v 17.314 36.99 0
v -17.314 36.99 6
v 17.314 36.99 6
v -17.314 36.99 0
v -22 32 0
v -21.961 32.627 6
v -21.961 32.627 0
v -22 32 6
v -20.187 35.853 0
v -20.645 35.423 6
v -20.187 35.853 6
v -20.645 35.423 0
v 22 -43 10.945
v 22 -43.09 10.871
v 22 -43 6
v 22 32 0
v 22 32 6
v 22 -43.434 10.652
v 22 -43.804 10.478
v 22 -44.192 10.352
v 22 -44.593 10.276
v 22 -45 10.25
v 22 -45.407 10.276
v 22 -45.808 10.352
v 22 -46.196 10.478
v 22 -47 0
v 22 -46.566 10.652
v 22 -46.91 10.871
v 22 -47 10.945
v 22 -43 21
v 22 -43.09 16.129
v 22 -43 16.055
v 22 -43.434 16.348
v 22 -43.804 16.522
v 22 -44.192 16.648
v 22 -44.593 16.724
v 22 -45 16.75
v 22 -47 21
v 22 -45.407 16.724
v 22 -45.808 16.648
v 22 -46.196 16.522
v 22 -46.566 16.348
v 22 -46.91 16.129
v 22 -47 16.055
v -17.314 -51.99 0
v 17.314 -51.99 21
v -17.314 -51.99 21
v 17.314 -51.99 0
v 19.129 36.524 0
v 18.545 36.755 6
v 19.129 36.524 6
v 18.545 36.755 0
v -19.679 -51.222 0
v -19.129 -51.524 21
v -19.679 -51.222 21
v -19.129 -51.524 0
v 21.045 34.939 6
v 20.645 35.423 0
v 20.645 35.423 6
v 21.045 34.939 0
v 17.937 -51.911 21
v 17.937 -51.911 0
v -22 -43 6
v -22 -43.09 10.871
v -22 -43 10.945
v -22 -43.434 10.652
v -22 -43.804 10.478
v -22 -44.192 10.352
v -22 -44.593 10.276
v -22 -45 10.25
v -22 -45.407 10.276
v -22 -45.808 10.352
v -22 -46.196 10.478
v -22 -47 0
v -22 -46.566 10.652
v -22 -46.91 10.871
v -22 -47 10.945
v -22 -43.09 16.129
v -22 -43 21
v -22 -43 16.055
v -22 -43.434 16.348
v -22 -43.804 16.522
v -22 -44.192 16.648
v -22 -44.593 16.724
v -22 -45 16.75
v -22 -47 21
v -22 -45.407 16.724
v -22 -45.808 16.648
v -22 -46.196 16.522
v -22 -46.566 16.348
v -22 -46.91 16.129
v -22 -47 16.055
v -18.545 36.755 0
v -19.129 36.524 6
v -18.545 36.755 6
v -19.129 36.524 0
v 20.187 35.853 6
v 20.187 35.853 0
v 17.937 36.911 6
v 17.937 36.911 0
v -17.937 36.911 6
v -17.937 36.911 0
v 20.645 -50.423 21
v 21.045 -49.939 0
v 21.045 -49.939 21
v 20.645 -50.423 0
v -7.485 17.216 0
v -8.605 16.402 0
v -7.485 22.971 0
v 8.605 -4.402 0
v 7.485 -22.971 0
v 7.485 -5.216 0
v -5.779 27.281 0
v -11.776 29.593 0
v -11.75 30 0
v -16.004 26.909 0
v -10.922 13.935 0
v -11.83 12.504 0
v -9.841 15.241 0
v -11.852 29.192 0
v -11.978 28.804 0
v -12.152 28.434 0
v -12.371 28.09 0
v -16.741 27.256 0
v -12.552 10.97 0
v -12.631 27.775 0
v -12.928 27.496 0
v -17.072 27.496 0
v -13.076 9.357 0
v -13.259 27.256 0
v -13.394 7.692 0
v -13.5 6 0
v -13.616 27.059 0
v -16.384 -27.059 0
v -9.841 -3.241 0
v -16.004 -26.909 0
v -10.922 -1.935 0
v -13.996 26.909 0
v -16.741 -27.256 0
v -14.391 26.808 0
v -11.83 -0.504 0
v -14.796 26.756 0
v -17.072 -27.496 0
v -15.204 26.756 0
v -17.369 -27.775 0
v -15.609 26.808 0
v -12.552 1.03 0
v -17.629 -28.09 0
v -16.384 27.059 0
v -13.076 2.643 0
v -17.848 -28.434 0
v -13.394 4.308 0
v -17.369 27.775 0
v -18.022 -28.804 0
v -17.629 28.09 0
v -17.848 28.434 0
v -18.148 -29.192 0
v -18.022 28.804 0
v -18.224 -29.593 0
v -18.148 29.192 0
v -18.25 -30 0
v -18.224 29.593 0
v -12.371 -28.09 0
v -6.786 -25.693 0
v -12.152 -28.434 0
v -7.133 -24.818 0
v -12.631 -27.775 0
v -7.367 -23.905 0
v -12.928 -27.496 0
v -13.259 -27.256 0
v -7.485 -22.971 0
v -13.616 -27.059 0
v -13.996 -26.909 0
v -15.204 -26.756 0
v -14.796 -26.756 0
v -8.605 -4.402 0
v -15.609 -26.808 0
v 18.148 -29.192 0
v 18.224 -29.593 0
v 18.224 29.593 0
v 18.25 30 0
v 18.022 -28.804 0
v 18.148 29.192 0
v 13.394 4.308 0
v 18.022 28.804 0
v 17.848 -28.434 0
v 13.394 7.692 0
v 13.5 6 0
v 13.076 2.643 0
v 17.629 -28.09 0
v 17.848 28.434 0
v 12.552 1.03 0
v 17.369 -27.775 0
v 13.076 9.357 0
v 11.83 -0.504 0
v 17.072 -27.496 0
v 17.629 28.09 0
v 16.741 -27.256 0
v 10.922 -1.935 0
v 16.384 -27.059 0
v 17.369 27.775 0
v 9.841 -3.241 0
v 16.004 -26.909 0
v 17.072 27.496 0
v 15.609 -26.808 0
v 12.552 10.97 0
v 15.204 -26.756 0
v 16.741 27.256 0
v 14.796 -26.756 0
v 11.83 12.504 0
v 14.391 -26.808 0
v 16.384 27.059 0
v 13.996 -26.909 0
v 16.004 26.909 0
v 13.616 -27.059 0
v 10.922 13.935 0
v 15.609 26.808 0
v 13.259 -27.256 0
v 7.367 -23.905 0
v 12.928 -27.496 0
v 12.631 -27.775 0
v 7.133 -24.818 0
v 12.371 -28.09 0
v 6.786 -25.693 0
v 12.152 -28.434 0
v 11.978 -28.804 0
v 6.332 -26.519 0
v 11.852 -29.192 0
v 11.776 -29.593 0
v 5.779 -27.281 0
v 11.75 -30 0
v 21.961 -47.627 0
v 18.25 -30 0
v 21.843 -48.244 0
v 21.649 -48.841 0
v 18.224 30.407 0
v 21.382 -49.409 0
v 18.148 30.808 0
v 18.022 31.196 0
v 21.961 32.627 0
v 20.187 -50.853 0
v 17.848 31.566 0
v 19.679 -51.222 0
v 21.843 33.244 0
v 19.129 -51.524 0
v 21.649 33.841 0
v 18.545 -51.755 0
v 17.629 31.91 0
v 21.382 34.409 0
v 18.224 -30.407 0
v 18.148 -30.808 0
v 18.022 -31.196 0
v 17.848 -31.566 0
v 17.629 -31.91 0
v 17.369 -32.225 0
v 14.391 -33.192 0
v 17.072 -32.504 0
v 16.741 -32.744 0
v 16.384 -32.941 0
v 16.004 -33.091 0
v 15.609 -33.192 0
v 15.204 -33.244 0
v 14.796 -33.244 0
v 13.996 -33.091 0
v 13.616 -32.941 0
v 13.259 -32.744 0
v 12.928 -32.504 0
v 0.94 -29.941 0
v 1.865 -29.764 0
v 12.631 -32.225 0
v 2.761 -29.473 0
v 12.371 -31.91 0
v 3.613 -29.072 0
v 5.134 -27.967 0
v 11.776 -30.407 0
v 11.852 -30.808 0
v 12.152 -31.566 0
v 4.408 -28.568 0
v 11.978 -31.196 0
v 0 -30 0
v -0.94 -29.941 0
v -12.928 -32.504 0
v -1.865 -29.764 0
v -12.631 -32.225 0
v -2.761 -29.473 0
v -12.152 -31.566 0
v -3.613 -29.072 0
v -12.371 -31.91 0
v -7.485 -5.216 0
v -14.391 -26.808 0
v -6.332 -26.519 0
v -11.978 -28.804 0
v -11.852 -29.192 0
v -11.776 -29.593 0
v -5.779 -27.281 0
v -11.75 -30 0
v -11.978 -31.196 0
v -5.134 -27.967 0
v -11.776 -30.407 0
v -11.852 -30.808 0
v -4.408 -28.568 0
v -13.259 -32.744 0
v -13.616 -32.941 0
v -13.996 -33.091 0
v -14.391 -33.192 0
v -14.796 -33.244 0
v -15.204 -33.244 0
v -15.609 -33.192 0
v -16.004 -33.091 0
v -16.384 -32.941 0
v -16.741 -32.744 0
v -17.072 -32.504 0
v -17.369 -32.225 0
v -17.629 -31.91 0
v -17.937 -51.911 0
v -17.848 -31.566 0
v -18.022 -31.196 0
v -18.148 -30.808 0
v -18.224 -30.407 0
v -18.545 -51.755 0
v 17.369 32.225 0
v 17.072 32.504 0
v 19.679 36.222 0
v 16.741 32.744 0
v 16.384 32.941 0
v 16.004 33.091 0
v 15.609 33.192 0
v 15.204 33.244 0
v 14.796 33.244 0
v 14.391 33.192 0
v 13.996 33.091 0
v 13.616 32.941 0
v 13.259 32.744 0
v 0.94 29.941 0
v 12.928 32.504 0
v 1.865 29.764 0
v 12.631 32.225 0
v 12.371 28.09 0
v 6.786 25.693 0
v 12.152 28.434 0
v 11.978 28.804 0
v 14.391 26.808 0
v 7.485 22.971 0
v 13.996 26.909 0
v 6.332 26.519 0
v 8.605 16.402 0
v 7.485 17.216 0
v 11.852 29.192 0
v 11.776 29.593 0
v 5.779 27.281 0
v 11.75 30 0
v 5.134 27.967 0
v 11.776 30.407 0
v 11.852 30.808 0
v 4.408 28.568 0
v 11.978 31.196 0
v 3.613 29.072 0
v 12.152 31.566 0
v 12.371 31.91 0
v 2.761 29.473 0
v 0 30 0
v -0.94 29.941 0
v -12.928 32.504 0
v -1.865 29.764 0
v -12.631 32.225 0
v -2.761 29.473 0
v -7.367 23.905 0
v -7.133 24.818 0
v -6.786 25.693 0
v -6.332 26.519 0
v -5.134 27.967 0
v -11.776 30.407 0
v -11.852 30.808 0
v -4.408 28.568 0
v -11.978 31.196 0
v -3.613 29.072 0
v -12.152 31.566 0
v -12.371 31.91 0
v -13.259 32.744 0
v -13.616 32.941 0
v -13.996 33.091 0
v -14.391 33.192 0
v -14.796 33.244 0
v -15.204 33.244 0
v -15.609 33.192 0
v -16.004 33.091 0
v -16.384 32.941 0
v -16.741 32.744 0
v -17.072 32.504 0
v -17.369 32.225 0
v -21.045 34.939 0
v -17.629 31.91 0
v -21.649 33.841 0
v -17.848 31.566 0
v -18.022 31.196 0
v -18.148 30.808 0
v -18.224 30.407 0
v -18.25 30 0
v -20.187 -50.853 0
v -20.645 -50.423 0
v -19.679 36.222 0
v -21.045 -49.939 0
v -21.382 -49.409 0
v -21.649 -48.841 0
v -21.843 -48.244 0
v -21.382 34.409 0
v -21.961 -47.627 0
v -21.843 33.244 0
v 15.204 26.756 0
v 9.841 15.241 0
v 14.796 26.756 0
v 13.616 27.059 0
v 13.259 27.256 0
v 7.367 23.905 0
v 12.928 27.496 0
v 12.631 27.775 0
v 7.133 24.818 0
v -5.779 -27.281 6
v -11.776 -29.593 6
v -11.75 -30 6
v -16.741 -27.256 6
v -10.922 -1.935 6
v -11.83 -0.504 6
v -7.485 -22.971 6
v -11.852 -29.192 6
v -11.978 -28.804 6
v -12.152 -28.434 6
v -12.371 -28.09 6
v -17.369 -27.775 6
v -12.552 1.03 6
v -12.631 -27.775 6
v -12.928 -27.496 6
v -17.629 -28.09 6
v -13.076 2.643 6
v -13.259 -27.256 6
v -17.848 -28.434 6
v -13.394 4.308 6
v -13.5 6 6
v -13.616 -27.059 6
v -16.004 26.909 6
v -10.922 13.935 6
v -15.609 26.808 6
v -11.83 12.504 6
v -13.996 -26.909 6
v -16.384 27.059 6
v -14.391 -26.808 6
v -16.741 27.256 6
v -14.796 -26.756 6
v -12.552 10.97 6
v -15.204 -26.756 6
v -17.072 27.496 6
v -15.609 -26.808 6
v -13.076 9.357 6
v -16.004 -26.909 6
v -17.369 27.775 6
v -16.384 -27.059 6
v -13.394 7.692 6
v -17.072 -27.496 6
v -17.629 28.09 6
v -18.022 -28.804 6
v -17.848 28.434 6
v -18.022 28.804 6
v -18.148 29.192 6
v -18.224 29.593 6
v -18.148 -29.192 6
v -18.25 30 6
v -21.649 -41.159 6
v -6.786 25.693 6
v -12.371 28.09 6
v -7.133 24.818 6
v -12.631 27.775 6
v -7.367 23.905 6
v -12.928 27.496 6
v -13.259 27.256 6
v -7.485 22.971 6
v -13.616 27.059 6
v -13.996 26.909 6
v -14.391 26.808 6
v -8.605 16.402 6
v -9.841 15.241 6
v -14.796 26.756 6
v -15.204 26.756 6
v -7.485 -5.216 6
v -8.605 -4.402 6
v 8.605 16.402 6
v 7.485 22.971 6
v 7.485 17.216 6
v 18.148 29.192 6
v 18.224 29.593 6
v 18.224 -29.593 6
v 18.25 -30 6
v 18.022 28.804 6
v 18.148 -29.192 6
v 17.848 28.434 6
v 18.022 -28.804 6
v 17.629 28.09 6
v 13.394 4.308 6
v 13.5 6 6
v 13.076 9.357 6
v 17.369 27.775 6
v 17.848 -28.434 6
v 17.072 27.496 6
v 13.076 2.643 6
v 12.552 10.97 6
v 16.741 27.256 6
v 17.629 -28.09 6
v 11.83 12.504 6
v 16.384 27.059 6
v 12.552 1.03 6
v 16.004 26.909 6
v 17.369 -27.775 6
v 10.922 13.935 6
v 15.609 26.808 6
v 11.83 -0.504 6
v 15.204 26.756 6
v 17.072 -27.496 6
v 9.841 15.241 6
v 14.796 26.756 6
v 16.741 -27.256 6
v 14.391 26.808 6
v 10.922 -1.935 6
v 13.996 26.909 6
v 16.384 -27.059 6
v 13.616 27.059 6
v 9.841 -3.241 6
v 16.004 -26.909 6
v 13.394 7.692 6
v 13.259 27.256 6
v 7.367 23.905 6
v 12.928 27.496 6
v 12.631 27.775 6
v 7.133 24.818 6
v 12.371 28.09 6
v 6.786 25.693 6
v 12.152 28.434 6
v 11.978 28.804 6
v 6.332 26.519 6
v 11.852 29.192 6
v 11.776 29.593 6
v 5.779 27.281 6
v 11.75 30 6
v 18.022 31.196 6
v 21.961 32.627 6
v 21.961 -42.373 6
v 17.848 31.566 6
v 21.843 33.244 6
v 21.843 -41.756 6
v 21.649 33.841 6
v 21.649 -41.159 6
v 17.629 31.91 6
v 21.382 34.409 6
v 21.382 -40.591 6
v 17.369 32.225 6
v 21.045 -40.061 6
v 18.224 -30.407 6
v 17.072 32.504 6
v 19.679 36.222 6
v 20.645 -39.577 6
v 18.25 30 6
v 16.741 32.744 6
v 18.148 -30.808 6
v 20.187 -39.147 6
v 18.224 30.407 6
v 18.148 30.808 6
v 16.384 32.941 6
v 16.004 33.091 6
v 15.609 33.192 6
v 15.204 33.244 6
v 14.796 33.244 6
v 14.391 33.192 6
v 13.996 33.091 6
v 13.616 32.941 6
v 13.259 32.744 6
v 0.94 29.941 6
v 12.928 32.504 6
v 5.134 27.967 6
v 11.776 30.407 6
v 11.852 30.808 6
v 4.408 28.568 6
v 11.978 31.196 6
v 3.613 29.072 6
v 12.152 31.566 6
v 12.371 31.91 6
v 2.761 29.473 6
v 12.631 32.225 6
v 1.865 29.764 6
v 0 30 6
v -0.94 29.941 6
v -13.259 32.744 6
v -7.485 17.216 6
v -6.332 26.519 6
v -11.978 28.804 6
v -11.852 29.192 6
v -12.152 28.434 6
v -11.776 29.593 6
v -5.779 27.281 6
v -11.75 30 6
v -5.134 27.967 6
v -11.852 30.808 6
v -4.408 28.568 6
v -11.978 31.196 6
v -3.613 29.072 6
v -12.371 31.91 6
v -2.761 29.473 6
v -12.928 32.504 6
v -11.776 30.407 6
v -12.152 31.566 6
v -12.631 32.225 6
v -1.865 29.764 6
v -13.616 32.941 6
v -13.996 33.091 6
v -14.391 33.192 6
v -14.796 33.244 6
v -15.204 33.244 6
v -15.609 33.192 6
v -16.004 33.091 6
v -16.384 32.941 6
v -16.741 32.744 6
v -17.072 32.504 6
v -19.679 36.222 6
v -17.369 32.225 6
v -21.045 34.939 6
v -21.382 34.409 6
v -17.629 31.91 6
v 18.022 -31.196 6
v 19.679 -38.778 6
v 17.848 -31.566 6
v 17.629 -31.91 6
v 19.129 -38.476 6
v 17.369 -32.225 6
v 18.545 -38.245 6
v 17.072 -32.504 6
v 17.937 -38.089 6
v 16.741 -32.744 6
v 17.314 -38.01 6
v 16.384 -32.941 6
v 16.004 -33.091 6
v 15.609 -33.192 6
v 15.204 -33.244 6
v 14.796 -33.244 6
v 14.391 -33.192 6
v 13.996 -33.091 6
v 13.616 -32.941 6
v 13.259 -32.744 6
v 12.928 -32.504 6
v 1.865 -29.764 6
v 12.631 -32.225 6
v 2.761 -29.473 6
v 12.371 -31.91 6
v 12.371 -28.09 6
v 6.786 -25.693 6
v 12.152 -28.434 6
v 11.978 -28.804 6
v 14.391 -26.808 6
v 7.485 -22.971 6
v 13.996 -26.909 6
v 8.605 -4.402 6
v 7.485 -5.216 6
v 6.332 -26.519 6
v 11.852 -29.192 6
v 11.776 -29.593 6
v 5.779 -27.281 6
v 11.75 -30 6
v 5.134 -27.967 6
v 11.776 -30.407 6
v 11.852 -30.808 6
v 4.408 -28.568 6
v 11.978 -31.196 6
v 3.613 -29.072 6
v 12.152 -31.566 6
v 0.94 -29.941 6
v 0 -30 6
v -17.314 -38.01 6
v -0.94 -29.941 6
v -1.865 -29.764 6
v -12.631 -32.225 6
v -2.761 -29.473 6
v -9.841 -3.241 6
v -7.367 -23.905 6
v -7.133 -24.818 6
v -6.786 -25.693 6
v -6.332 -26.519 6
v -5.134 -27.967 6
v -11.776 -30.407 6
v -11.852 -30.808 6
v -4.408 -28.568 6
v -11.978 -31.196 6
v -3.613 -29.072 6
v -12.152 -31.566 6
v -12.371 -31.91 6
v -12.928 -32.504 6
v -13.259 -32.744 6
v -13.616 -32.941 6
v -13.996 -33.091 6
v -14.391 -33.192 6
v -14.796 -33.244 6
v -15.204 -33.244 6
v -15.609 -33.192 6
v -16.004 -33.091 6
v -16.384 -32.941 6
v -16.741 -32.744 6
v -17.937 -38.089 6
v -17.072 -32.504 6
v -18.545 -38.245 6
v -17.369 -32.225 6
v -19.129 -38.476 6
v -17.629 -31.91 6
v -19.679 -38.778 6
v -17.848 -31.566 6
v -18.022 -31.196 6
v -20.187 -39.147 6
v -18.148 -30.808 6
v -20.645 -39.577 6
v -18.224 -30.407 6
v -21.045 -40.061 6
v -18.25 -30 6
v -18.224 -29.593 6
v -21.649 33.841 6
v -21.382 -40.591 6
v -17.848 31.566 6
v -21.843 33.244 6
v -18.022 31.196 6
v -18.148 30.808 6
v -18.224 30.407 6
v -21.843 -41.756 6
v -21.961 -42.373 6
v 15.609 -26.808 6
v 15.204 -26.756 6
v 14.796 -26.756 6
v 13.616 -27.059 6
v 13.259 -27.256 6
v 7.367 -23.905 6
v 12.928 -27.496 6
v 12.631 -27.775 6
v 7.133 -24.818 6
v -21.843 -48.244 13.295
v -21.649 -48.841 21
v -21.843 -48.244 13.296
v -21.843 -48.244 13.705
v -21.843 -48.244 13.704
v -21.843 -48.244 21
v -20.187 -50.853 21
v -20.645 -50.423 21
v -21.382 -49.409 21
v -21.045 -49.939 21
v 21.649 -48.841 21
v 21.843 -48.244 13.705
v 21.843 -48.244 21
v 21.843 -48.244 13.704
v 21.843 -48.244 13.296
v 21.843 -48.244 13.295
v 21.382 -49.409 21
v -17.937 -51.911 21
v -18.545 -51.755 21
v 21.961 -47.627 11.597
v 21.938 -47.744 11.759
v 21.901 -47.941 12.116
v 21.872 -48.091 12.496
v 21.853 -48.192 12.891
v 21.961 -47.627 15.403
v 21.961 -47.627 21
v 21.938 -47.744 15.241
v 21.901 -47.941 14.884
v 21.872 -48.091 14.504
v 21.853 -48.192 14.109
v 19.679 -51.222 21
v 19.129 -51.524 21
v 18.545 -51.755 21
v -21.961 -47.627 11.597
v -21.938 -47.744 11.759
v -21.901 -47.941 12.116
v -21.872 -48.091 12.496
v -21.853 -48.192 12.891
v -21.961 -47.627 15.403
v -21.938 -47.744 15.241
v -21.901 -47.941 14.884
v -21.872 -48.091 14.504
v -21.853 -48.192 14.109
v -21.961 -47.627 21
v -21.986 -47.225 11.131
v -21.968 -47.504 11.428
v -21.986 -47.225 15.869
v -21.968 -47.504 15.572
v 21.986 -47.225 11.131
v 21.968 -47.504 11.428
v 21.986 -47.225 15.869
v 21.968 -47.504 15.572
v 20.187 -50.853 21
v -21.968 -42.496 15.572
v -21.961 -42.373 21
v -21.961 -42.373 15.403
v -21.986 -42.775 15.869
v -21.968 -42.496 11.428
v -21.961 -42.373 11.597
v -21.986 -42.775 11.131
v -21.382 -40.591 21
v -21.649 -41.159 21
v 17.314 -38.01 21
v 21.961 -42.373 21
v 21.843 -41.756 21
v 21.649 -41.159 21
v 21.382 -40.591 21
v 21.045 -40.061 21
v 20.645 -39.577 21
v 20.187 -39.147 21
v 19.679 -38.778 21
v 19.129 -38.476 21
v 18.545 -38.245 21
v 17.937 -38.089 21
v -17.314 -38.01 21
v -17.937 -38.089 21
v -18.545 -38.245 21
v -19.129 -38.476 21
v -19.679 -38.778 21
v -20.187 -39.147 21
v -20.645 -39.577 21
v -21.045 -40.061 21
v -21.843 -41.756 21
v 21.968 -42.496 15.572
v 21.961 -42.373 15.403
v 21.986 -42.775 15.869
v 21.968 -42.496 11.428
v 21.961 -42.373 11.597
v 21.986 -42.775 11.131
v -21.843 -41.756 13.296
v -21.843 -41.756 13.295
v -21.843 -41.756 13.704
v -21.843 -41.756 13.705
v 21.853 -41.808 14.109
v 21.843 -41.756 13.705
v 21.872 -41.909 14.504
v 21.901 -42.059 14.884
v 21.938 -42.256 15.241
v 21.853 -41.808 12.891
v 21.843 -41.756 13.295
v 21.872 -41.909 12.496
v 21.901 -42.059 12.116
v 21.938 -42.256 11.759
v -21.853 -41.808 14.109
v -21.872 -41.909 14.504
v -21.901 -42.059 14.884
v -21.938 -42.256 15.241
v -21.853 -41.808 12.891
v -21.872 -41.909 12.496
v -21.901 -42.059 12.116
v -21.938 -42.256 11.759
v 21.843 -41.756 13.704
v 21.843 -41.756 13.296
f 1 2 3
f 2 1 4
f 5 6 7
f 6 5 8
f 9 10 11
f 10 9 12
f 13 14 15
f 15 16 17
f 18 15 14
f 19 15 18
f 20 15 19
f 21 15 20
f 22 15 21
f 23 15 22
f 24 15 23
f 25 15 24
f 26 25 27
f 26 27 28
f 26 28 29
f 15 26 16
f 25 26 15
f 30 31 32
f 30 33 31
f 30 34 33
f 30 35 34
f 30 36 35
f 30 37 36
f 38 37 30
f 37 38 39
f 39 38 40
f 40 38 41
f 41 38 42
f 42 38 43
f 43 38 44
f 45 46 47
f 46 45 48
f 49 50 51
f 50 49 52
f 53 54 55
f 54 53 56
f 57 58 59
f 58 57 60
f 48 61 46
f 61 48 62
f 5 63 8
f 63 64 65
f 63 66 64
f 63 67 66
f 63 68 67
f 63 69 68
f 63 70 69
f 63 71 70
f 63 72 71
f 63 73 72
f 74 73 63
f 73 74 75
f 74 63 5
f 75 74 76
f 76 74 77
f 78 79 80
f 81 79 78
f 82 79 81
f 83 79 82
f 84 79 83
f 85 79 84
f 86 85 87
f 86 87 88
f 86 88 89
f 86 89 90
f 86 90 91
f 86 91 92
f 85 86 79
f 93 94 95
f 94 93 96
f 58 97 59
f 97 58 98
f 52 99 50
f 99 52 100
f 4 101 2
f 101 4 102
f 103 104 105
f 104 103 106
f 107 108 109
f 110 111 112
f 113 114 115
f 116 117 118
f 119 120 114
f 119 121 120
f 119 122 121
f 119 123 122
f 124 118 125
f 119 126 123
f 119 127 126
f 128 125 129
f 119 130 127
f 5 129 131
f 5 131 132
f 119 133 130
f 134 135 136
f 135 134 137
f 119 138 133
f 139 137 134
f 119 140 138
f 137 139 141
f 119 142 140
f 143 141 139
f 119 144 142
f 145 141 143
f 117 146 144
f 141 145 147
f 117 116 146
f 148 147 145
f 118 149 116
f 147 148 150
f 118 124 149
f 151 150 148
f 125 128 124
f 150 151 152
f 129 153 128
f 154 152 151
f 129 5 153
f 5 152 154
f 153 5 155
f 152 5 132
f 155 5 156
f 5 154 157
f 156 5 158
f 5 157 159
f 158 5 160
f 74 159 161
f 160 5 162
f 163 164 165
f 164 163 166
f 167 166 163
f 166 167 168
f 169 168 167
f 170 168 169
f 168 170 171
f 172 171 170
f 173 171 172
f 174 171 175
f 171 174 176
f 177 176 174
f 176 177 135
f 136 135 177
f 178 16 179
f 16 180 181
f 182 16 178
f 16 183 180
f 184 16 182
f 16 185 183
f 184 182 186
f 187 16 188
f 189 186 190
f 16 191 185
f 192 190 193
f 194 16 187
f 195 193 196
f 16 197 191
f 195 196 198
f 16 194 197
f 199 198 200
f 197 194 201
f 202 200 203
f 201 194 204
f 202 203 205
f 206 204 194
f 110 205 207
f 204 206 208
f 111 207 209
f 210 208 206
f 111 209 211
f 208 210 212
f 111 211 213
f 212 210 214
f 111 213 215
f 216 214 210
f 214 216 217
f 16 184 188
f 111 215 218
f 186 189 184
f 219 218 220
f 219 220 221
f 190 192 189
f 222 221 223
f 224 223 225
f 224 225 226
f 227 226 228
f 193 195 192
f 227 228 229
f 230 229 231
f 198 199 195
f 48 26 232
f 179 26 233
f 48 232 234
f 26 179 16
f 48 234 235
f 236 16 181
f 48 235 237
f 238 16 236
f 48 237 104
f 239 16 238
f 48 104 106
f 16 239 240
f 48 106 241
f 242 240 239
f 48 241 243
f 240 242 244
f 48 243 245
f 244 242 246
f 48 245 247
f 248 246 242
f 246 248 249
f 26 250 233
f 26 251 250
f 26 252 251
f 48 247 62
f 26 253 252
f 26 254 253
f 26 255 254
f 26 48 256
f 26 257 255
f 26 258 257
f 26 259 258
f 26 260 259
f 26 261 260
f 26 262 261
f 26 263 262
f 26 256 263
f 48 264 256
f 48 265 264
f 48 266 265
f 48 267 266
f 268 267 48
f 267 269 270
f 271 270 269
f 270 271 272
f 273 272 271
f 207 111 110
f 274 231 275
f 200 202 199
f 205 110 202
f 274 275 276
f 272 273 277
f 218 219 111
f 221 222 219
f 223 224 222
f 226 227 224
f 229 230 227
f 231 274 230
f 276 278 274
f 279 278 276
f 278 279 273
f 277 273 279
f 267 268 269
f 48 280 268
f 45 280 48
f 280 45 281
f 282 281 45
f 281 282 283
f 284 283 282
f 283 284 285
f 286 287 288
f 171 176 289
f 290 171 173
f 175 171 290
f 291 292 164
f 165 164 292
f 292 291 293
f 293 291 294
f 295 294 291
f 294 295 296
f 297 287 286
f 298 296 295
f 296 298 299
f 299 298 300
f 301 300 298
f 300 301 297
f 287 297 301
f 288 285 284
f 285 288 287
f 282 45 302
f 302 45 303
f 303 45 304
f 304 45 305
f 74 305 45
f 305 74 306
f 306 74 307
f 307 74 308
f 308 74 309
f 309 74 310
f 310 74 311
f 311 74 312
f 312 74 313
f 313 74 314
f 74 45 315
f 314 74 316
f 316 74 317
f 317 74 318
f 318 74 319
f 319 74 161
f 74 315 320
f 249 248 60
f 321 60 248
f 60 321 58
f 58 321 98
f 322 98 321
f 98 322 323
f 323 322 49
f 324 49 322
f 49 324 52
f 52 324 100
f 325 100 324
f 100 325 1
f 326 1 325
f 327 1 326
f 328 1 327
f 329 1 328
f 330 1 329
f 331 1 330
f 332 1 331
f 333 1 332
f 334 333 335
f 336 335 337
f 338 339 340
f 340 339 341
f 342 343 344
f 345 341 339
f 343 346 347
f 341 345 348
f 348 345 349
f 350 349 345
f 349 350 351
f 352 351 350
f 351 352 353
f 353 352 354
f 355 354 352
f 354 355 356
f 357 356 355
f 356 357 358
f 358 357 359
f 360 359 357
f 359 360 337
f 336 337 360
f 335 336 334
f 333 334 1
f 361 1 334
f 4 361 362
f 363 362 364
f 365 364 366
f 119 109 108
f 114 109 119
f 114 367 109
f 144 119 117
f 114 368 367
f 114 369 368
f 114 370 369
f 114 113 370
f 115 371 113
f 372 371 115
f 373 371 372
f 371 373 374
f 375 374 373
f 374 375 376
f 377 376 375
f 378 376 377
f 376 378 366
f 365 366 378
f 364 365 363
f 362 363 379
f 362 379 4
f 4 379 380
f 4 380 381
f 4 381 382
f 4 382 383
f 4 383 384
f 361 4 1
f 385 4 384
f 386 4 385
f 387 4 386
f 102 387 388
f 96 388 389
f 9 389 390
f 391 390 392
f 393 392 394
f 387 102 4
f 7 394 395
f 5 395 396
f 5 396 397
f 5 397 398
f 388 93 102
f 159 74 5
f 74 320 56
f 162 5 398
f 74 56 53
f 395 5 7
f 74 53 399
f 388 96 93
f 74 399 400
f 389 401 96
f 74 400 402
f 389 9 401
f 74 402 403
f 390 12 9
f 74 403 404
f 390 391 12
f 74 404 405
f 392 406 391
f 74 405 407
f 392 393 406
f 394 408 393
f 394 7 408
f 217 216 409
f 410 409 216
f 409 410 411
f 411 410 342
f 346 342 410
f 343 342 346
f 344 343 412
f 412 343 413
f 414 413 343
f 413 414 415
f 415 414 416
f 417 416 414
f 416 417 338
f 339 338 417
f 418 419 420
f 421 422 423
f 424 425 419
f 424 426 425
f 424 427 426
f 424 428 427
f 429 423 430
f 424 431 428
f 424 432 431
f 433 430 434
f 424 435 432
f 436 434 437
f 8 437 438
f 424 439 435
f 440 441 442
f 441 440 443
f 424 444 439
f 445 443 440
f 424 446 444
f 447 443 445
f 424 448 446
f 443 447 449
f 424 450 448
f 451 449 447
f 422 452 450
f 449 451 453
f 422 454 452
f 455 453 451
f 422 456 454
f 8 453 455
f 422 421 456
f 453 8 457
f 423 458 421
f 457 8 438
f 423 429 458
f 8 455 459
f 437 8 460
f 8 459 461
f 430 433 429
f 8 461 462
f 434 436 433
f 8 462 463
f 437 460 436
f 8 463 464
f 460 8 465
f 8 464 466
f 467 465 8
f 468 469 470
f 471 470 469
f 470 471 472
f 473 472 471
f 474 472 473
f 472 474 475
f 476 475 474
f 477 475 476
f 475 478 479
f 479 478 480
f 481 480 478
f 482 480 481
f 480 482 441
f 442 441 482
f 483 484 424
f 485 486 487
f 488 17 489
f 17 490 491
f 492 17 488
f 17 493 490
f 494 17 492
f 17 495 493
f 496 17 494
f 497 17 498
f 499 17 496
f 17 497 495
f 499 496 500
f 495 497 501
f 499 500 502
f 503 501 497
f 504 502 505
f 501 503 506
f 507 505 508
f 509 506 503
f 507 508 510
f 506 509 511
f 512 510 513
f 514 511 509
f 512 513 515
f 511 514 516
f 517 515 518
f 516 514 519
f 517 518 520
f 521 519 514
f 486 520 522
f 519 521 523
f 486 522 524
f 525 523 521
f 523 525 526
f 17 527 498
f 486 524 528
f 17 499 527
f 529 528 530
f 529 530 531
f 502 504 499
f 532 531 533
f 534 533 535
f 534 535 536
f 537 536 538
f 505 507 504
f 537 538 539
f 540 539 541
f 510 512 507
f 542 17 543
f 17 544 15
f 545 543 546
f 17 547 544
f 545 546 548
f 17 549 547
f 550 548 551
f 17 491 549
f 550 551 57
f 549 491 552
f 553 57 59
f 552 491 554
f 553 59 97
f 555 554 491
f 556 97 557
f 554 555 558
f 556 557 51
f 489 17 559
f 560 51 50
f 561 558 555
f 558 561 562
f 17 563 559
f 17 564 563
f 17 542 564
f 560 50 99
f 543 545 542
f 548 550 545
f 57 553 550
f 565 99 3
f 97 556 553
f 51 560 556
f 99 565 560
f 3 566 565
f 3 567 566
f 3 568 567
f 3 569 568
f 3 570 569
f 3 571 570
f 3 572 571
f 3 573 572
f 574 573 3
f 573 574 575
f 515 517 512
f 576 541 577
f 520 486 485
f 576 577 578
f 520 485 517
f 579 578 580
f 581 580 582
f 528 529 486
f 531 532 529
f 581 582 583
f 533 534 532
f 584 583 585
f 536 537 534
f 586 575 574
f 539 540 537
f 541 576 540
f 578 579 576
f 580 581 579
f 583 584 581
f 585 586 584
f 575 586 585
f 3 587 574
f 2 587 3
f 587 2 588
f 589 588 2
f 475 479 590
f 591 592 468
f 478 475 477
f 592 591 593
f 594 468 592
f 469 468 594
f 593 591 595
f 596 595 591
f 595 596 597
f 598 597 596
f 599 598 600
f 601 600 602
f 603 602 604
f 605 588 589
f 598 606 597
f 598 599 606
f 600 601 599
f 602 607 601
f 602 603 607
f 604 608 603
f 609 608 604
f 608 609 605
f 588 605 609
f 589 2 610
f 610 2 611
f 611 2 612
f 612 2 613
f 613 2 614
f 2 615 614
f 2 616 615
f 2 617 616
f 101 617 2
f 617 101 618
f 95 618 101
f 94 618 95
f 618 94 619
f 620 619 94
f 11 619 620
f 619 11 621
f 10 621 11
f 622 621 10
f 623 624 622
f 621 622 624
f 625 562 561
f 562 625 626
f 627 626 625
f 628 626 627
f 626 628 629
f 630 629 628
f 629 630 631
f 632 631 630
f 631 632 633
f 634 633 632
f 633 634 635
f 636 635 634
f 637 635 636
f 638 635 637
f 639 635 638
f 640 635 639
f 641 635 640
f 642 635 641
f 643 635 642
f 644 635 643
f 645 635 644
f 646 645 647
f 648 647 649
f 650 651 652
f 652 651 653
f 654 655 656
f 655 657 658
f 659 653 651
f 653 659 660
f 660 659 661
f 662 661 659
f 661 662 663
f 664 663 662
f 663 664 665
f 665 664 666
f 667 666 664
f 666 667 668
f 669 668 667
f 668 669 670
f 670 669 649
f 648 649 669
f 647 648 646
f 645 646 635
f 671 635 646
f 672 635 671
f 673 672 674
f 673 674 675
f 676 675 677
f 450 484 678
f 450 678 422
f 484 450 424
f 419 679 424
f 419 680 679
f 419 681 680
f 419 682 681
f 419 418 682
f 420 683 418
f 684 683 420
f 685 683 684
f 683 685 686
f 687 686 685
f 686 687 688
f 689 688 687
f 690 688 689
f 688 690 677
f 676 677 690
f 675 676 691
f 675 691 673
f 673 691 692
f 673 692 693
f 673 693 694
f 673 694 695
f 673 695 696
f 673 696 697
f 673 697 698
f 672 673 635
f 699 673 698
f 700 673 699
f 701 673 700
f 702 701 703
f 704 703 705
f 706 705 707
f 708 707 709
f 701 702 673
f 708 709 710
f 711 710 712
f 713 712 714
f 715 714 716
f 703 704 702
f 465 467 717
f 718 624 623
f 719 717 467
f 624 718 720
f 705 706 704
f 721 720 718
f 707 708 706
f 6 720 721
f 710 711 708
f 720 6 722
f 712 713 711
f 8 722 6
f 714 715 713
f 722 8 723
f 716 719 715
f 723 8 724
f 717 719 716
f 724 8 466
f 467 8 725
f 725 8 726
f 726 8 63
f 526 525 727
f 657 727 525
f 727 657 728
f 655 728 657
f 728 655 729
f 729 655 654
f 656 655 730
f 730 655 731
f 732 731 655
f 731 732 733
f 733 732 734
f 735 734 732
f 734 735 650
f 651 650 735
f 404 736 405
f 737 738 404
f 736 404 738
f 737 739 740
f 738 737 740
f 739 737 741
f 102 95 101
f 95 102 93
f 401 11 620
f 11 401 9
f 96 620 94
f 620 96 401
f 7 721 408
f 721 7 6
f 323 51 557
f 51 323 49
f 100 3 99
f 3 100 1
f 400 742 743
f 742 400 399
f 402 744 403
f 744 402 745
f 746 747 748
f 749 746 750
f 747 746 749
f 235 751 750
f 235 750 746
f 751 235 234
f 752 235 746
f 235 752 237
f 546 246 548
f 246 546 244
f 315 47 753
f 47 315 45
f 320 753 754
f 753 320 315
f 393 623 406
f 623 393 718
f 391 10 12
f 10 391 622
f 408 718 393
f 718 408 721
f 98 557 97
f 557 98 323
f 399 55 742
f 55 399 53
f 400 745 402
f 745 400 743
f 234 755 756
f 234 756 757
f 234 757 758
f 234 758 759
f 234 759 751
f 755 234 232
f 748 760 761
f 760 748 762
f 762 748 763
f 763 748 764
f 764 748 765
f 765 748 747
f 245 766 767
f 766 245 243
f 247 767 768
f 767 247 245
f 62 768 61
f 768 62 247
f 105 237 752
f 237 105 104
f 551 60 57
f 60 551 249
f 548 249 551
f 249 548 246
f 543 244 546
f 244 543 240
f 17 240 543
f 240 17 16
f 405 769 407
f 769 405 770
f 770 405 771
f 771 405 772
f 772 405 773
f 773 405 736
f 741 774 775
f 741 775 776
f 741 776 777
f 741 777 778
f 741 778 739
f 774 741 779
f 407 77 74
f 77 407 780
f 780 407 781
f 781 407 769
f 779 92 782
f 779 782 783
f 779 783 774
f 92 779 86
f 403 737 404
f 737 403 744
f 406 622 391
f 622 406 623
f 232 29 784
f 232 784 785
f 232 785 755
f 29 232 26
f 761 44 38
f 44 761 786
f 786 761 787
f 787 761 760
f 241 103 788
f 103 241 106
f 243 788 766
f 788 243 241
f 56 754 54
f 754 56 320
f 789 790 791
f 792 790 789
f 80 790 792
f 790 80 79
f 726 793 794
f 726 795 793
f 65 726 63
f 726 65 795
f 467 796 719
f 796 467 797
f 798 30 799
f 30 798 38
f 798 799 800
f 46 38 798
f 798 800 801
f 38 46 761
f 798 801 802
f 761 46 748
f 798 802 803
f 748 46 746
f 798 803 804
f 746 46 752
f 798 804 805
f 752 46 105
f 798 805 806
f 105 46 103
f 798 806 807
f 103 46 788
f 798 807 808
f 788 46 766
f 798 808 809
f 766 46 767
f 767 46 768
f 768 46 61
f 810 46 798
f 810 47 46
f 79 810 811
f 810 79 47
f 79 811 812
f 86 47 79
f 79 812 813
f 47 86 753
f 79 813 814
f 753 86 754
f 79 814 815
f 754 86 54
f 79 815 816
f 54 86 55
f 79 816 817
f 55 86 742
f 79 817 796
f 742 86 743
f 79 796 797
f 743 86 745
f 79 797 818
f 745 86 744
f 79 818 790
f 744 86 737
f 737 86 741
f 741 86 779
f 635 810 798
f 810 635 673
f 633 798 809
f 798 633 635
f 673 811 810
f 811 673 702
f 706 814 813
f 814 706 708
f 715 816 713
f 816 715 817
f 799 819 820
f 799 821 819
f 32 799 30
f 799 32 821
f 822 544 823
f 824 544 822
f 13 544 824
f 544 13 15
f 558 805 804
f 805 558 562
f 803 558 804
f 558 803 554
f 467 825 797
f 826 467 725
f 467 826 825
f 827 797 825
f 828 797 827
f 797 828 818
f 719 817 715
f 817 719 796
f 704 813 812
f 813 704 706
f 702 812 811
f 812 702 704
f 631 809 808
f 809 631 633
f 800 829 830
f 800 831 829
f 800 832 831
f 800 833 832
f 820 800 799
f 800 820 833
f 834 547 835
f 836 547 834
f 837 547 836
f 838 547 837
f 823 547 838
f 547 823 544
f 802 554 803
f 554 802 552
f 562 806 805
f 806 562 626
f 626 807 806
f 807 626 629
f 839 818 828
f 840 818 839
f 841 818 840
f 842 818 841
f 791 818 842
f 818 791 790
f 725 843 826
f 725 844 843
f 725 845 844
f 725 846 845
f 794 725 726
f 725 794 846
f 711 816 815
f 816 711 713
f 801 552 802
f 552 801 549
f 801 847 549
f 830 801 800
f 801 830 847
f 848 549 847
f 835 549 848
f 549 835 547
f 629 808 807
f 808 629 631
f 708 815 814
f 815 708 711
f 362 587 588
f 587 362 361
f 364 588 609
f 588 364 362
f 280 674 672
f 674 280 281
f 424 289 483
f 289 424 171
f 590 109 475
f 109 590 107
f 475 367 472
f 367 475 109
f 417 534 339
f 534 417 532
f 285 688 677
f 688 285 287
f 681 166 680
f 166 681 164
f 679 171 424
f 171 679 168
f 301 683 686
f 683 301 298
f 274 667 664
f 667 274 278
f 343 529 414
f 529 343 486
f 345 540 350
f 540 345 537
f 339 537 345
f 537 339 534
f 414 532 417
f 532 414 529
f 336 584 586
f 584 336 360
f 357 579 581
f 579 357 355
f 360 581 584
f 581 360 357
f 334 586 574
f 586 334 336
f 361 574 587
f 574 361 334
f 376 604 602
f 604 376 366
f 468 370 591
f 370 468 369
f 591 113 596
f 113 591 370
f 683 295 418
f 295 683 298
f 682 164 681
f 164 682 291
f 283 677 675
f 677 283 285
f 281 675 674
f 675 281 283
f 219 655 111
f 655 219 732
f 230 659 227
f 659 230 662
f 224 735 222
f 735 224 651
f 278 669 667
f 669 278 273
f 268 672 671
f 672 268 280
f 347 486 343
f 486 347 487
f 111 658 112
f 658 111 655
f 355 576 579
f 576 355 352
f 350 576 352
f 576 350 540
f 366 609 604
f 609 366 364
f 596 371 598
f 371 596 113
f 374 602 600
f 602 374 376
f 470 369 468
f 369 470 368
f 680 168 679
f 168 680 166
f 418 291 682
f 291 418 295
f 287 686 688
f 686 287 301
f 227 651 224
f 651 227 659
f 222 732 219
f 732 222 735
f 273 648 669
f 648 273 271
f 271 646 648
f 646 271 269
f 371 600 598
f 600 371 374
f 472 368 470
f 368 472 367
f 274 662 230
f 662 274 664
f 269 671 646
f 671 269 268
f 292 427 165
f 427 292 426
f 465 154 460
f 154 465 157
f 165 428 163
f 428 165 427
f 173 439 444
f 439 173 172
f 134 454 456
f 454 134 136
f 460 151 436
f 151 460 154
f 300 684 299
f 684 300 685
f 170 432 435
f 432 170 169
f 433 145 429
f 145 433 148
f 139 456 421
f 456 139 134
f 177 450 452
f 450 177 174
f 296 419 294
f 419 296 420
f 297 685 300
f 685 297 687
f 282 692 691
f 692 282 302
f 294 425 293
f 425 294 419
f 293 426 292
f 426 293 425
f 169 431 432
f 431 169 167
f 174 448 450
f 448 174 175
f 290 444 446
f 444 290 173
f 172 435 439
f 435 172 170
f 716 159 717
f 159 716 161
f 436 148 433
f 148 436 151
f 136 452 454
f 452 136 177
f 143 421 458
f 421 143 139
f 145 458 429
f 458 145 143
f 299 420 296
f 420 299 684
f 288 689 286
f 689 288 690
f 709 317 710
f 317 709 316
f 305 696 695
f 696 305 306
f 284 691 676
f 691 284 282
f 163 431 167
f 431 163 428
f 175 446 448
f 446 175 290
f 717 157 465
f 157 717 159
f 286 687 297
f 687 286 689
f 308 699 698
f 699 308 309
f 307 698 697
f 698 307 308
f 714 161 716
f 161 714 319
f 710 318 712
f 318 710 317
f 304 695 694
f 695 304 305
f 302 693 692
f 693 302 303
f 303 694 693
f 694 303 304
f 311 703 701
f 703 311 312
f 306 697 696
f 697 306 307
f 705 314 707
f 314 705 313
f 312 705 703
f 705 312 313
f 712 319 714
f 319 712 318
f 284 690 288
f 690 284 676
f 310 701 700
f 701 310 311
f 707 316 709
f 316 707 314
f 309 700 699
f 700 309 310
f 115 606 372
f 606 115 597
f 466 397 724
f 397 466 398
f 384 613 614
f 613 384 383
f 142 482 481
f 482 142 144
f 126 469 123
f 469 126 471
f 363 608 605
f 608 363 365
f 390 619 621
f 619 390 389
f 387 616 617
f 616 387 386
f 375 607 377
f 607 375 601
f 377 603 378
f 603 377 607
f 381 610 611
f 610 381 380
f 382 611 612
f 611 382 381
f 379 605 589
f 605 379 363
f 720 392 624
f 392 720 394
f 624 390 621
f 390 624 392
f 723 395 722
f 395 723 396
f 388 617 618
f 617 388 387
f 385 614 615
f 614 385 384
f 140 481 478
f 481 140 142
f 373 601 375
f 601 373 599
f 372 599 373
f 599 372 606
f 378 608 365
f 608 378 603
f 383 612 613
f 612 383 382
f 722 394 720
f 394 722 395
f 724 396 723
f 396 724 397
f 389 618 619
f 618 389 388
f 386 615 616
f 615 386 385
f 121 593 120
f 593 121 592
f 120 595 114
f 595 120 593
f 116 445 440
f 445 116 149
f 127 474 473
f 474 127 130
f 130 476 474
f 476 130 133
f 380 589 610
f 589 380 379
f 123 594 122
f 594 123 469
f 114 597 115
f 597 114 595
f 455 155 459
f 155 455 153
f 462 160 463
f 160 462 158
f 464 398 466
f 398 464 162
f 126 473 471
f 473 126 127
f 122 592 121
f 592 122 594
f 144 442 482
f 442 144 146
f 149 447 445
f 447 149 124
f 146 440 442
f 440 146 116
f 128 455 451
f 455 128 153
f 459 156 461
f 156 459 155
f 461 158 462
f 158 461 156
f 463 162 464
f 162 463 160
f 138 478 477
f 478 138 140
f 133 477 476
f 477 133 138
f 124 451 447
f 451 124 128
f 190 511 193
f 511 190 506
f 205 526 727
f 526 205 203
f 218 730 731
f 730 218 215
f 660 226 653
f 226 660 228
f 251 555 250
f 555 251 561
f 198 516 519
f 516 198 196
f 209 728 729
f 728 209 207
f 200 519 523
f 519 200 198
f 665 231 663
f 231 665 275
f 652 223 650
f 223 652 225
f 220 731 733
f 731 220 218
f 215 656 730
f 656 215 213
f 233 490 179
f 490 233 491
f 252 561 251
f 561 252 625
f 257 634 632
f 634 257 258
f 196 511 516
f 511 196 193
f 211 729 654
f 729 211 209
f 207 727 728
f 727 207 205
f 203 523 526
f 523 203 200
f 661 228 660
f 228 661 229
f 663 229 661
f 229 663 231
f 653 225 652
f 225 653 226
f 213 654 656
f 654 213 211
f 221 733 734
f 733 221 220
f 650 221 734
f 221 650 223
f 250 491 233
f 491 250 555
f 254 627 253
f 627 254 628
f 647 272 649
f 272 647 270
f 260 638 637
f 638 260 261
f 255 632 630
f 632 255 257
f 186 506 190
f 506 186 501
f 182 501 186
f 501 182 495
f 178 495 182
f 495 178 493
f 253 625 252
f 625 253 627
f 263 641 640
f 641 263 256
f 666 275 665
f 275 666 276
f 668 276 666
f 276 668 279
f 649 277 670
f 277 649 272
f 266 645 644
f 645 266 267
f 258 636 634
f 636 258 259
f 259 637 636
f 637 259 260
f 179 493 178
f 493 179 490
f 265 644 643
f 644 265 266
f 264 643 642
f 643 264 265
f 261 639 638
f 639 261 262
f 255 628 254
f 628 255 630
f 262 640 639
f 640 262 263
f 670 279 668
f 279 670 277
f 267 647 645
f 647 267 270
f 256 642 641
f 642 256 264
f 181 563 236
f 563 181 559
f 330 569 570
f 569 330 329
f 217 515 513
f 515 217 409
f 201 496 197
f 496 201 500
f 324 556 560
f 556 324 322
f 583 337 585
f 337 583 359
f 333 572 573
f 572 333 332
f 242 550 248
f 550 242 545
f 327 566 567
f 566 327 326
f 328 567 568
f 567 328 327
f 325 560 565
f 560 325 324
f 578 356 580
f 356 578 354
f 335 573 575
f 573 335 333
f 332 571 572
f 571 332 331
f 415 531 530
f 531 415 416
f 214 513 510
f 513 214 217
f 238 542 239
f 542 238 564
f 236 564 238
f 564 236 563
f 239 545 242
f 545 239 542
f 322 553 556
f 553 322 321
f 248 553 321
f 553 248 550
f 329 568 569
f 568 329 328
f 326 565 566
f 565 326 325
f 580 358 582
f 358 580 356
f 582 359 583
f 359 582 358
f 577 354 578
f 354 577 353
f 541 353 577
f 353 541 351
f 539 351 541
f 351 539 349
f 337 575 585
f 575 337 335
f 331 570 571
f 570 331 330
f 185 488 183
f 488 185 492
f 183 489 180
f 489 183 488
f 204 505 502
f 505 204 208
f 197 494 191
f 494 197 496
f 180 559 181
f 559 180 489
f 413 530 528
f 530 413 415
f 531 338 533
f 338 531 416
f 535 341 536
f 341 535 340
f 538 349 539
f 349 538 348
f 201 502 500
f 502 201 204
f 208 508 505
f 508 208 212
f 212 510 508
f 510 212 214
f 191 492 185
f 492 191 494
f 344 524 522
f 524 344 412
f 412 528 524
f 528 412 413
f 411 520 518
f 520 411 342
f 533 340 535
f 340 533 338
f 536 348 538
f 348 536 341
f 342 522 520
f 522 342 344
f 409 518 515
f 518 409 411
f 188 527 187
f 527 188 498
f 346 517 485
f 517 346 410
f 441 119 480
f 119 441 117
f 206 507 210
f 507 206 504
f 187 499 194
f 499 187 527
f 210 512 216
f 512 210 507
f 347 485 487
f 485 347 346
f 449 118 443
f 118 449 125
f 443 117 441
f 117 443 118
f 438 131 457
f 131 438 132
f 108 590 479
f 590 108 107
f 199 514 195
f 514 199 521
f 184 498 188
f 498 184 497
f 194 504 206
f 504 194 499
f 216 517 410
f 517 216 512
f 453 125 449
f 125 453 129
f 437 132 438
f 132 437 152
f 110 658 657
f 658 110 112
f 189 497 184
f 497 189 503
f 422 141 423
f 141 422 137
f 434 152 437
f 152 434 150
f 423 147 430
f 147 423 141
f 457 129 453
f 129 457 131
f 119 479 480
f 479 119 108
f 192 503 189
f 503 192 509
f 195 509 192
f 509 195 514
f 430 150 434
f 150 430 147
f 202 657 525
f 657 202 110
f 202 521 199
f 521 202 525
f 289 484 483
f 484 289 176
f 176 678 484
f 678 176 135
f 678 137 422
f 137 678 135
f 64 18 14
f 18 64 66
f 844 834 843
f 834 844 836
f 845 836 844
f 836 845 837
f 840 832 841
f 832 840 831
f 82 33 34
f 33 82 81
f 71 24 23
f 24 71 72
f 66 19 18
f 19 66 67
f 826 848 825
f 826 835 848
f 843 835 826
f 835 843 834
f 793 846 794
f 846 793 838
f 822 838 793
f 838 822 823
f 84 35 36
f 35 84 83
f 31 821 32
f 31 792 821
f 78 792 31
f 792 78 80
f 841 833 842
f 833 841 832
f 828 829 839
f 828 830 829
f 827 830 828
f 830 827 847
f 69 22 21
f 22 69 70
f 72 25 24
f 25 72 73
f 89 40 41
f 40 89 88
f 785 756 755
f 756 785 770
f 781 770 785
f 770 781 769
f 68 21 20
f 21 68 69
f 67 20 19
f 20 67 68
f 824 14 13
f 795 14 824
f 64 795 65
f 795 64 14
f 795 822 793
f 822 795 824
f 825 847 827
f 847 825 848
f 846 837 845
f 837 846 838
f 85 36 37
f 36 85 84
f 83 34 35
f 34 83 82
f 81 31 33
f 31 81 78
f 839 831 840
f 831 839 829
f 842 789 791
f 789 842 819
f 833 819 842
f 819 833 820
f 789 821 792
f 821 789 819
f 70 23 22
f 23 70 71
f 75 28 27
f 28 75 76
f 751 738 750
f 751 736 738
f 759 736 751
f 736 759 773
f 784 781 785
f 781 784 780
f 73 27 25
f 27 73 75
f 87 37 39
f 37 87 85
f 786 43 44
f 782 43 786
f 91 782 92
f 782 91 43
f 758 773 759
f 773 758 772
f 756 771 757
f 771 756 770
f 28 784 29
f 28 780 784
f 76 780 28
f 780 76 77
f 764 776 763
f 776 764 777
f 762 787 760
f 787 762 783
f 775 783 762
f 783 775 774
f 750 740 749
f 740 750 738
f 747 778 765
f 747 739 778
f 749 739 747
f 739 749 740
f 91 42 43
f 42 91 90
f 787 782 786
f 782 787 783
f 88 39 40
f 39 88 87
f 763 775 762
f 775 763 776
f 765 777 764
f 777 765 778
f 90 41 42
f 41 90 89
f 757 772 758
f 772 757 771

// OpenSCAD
$fn = 50;


difference() {
	union() {
		translate(v = [0, -7.5000000000, 0]) {
			hull() {
				translate(v = [-17.0000000000, 39.5000000000, 0]) {
					cylinder(h = 6, r = 5);
				}
				translate(v = [17.0000000000, 39.5000000000, 0]) {
					cylinder(h = 6, r = 5);
				}
				translate(v = [-17.0000000000, -39.5000000000, 0]) {
					cylinder(h = 6, r = 5);
				}
				translate(v = [17.0000000000, -39.5000000000, 0]) {
					cylinder(h = 6, r = 5);
				}
			}
		}
		translate(v = [0, -45.0000000000, 0]) {
			hull() {
				translate(v = [-17.0000000000, 2.0000000000, 0]) {
					cylinder(h = 21, r = 5);
				}
				translate(v = [17.0000000000, 2.0000000000, 0]) {
					cylinder(h = 21, r = 5);
				}
				translate(v = [-17.0000000000, -2.0000000000, 0]) {
					cylinder(h = 21, r = 5);
				}
				translate(v = [17.0000000000, -2.0000000000, 0]) {
					cylinder(h = 21, r = 5);
				}
			}
		}
	}
	union() {
		translate(v = [0, 0, 0]) {
			rotate(a = [0, 0, 90]) {
				difference() {
					union() {
						hull() {
							translate(v = [22.5000000000, 0, 0]) {
								cylinder(h = 6, r = 7.5000000000, r1 = 7.5000000000, r2 = 7.5000000000);
							}
							translate(v = [-22.5000000000, 0, 0]) {
								cylinder(h = 6, r = 7.5000000000, r1 = 7.5000000000, r2 = 7.5000000000);
							}
						}
					}
					union();
				}
			}
		}
		translate(v = [-15.0000000000, -30.0000000000, -100.0000000000]) {
			cylinder(h = 200, r = 3.2500000000);
		}
		translate(v = [-15.0000000000, 30.0000000000, -100.0000000000]) {
			cylinder(h = 200, r = 3.2500000000);
		}
		translate(v = [15.0000000000, -30.0000000000, -100.0000000000]) {
			cylinder(h = 200, r = 3.2500000000);
		}
		translate(v = [15.0000000000, 30.0000000000, -100.0000000000]) {
			cylinder(h = 200, r = 3.2500000000);
		}
		translate(v = [0, 6, -100.0000000000]) {
			cylinder(h = 200, r = 13.5000000000);
		}
		translate(v = [-22.0000000000, -45.0000000000, 13.5000000000]) {
			rotate(a = [0, 90, 0]) {
				cylinder(h = 44, r = 3.2500000000);
			}
		}
	}
}
